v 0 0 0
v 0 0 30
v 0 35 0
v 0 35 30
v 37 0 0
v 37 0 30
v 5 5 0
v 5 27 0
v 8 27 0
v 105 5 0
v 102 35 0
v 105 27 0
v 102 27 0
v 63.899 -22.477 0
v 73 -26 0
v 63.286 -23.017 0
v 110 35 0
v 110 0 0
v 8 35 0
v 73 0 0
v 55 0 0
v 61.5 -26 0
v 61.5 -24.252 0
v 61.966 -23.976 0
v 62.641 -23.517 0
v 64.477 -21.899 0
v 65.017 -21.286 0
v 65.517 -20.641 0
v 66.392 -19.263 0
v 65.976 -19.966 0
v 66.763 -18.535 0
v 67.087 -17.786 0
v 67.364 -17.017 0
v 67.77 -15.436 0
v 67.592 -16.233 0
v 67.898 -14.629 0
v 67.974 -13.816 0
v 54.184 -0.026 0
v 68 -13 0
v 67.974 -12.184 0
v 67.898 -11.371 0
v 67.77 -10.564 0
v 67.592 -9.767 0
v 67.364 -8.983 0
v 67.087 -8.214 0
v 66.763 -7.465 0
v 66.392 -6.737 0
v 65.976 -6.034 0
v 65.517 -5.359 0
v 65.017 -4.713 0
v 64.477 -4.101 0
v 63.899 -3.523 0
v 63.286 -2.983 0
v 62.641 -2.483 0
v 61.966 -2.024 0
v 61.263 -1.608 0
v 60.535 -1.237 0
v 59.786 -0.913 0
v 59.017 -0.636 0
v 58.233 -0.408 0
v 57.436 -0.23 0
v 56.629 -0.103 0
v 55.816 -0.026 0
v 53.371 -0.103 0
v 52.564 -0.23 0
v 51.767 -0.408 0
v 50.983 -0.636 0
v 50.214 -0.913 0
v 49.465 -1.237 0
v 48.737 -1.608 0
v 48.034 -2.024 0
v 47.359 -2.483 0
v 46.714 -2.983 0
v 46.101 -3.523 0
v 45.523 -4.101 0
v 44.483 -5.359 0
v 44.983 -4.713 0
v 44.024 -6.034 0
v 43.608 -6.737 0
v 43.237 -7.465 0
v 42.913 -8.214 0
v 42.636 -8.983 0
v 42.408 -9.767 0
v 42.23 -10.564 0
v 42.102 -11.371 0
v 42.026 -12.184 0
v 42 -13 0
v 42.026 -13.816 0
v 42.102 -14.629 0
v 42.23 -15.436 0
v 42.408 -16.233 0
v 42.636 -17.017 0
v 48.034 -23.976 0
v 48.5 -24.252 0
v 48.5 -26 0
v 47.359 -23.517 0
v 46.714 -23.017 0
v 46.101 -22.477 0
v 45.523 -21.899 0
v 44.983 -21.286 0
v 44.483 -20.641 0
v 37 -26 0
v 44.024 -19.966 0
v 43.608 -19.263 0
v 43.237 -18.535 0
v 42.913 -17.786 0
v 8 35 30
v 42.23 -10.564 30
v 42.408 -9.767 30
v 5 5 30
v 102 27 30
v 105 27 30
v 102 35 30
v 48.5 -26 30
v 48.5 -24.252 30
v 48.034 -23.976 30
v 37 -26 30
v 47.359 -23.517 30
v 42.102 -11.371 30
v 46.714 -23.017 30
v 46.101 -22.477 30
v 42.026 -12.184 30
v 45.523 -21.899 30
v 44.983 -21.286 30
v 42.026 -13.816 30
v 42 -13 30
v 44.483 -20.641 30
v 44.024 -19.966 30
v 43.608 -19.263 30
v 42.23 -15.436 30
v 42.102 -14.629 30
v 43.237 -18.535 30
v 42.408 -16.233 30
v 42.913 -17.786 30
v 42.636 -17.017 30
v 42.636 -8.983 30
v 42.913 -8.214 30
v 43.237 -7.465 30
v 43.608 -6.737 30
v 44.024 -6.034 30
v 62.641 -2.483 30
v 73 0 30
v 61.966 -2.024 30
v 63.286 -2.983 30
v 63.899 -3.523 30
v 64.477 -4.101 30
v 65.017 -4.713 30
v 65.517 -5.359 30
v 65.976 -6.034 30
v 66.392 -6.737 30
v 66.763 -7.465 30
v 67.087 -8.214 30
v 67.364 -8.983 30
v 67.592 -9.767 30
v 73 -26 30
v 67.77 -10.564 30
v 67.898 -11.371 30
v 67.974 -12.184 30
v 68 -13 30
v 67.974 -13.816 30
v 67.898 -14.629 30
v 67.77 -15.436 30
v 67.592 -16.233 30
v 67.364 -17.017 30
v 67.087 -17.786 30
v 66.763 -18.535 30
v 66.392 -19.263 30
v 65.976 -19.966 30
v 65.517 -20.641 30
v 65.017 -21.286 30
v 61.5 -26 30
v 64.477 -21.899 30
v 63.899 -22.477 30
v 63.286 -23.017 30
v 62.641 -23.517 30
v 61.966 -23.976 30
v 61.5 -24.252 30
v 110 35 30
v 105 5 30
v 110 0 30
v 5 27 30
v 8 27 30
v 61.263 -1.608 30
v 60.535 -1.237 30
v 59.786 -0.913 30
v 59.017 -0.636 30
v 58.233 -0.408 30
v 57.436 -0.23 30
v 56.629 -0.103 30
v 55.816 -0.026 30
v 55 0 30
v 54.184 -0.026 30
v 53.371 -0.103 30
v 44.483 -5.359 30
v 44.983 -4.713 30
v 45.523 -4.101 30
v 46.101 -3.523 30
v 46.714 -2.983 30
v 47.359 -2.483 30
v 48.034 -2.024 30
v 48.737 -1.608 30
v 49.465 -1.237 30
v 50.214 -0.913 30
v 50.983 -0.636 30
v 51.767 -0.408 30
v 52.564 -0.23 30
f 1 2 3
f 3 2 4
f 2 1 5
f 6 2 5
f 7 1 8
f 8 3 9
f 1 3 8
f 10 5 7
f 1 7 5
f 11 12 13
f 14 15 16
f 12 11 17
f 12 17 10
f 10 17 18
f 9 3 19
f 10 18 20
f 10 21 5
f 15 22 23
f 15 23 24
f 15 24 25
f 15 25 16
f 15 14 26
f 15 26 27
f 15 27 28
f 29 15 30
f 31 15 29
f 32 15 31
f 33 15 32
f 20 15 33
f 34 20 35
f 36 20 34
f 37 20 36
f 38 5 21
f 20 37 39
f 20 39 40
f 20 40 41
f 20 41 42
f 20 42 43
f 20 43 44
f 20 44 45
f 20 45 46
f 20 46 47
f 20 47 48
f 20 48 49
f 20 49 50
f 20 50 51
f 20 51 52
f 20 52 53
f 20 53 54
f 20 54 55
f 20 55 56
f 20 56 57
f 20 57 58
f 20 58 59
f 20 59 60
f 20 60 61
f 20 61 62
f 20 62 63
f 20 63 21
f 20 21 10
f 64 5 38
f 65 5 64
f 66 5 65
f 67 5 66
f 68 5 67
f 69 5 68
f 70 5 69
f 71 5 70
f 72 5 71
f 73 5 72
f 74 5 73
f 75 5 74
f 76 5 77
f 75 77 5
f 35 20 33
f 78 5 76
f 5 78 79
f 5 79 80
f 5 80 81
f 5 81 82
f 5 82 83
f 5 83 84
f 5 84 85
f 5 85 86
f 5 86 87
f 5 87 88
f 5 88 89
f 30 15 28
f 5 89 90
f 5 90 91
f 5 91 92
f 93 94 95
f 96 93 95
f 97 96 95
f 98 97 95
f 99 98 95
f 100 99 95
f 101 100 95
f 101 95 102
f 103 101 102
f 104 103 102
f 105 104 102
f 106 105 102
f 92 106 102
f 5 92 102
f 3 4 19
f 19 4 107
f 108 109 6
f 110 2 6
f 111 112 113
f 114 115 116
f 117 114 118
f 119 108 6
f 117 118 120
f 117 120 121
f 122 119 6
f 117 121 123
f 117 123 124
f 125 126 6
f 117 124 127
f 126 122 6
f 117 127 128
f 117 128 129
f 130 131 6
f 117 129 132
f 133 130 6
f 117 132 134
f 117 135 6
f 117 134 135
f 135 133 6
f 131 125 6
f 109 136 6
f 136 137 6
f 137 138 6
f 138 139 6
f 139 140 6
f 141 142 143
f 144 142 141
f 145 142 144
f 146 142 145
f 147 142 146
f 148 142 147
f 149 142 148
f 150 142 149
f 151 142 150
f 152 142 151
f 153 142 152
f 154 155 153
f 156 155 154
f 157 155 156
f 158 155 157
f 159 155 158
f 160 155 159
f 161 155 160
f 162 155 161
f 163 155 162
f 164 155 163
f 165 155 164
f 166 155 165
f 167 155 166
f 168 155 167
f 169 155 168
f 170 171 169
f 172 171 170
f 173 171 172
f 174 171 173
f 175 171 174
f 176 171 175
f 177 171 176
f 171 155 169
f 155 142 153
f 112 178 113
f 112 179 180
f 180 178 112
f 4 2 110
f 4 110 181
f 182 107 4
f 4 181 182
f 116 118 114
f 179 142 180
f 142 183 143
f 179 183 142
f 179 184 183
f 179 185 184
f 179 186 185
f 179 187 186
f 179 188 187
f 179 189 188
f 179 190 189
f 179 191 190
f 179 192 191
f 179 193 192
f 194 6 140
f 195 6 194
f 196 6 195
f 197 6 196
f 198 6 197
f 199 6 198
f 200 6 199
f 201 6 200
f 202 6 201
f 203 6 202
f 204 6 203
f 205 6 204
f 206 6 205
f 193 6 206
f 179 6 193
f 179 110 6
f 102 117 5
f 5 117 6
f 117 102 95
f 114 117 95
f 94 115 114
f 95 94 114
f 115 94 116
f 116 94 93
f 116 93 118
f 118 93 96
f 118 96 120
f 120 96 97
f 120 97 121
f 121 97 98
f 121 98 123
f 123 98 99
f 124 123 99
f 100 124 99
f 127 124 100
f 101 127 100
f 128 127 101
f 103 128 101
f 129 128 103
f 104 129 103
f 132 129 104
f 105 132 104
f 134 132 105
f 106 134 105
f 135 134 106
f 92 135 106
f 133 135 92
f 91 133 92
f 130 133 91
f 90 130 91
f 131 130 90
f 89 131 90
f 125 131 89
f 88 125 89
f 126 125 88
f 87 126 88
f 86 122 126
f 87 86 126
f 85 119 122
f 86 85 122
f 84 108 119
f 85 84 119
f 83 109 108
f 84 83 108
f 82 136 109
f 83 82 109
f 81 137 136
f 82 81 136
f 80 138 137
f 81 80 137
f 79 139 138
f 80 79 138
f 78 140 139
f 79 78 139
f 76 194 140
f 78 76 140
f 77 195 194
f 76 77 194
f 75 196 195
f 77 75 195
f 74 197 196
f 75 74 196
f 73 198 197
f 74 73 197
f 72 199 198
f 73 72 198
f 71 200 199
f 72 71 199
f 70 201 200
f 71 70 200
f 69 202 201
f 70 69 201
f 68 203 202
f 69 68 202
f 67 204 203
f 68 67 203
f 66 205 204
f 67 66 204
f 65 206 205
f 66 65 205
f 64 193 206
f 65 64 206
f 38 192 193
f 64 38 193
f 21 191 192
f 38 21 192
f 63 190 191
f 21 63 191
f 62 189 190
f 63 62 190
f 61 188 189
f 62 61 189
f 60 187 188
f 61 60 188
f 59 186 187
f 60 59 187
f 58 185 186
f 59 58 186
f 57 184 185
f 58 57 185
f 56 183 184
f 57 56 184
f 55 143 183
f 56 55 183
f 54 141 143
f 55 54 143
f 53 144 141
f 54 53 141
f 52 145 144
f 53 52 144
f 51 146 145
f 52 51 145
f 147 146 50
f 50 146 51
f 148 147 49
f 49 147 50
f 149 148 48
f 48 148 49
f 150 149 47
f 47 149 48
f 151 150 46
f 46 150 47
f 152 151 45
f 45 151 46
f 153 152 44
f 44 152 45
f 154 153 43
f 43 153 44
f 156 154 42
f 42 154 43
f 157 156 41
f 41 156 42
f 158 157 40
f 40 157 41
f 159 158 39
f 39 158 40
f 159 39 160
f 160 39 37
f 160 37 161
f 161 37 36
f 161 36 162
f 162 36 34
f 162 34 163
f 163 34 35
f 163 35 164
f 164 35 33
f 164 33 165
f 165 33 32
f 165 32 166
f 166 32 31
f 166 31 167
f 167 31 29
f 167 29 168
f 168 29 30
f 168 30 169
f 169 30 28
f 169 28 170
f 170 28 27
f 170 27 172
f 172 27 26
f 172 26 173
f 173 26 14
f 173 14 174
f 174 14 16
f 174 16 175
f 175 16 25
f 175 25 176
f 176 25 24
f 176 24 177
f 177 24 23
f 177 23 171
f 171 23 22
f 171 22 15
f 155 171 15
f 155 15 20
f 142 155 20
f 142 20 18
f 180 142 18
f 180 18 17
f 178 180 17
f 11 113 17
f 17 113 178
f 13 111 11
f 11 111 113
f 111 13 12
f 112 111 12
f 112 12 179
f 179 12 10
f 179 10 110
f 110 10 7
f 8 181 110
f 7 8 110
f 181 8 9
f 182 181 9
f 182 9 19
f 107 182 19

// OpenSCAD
// avonpumpclip.scad
// Avon Pump Clip
// 
// Copyright (C) 2013 Christopher Roberts
//
// This program is free software: you can redistribute it and/or modify
// it under the terms of the GNU General Public License as published by
// the Free Software Foundation, either version 3 of the License, or
// (at your option) any later version.
// 
// This program is distributed in the hope that it will be useful,
// but WITHOUT ANY WARRANTY; without even the implied warranty of
// MERCHANTABILITY or FITNESS FOR A PARTICULAR PURPOSE.  See the
// GNU General Public License for more details.
// 
// You should have received a copy of the GNU General Public License
// along with this program.  If not, see <http://www.gnu.org/licenses/>.


// Pump clamp parameters
length         = 110;
width          = 35;
depth          = 30;
thickness      = 5;
grip_width     = 8;
grip_thickness = 3;

// Hose clamp parameters
diameter       = 26;
precision      = 100;

module avonpumpclip() {

    difference() {

        // Things that exist
        union() {
            // Body of pump clamp
            cube( size = [ length, width, depth ] );

            // Body of hose clamp
            translate( v = [ length/2 - diameter/2 - thickness, -diameter, 0] ) {
                cube( size = [ diameter + (thickness * 2), diameter, depth ] );
            }
        }

        // Things to be cut out
        union() {
            // Cutaway inside of pump clamp
            translate( v = [thickness, thickness, -0.1] ) { 
                cube( size = [ length - (thickness * 2), width - thickness - grip_width, depth +0.2 ] );
            }

            // Cutaway between pump grips
            translate( v = [thickness + grip_thickness, width - grip_width - 0.1, -0.1] ) { 
                cube( size = [ length - (thickness * 2) - (grip_thickness * 2), grip_width + 0.2, depth +0.2 ] );
            }

            // Cutaway hose
            translate( v = [ length/2, -diameter/2, -0.1] ) {
                cylinder( r = diameter/2, h = depth +0.2, $fn = precision );
            }

            // Cutaway entrance for hose
            translate( v = [ length/2 - diameter/4, -diameter -0.1, -0.1] ) {
                cube( size = [ diameter/2, diameter/2, depth +0.2 ] );
            }

        }
    }

}

avonpumpclip();
